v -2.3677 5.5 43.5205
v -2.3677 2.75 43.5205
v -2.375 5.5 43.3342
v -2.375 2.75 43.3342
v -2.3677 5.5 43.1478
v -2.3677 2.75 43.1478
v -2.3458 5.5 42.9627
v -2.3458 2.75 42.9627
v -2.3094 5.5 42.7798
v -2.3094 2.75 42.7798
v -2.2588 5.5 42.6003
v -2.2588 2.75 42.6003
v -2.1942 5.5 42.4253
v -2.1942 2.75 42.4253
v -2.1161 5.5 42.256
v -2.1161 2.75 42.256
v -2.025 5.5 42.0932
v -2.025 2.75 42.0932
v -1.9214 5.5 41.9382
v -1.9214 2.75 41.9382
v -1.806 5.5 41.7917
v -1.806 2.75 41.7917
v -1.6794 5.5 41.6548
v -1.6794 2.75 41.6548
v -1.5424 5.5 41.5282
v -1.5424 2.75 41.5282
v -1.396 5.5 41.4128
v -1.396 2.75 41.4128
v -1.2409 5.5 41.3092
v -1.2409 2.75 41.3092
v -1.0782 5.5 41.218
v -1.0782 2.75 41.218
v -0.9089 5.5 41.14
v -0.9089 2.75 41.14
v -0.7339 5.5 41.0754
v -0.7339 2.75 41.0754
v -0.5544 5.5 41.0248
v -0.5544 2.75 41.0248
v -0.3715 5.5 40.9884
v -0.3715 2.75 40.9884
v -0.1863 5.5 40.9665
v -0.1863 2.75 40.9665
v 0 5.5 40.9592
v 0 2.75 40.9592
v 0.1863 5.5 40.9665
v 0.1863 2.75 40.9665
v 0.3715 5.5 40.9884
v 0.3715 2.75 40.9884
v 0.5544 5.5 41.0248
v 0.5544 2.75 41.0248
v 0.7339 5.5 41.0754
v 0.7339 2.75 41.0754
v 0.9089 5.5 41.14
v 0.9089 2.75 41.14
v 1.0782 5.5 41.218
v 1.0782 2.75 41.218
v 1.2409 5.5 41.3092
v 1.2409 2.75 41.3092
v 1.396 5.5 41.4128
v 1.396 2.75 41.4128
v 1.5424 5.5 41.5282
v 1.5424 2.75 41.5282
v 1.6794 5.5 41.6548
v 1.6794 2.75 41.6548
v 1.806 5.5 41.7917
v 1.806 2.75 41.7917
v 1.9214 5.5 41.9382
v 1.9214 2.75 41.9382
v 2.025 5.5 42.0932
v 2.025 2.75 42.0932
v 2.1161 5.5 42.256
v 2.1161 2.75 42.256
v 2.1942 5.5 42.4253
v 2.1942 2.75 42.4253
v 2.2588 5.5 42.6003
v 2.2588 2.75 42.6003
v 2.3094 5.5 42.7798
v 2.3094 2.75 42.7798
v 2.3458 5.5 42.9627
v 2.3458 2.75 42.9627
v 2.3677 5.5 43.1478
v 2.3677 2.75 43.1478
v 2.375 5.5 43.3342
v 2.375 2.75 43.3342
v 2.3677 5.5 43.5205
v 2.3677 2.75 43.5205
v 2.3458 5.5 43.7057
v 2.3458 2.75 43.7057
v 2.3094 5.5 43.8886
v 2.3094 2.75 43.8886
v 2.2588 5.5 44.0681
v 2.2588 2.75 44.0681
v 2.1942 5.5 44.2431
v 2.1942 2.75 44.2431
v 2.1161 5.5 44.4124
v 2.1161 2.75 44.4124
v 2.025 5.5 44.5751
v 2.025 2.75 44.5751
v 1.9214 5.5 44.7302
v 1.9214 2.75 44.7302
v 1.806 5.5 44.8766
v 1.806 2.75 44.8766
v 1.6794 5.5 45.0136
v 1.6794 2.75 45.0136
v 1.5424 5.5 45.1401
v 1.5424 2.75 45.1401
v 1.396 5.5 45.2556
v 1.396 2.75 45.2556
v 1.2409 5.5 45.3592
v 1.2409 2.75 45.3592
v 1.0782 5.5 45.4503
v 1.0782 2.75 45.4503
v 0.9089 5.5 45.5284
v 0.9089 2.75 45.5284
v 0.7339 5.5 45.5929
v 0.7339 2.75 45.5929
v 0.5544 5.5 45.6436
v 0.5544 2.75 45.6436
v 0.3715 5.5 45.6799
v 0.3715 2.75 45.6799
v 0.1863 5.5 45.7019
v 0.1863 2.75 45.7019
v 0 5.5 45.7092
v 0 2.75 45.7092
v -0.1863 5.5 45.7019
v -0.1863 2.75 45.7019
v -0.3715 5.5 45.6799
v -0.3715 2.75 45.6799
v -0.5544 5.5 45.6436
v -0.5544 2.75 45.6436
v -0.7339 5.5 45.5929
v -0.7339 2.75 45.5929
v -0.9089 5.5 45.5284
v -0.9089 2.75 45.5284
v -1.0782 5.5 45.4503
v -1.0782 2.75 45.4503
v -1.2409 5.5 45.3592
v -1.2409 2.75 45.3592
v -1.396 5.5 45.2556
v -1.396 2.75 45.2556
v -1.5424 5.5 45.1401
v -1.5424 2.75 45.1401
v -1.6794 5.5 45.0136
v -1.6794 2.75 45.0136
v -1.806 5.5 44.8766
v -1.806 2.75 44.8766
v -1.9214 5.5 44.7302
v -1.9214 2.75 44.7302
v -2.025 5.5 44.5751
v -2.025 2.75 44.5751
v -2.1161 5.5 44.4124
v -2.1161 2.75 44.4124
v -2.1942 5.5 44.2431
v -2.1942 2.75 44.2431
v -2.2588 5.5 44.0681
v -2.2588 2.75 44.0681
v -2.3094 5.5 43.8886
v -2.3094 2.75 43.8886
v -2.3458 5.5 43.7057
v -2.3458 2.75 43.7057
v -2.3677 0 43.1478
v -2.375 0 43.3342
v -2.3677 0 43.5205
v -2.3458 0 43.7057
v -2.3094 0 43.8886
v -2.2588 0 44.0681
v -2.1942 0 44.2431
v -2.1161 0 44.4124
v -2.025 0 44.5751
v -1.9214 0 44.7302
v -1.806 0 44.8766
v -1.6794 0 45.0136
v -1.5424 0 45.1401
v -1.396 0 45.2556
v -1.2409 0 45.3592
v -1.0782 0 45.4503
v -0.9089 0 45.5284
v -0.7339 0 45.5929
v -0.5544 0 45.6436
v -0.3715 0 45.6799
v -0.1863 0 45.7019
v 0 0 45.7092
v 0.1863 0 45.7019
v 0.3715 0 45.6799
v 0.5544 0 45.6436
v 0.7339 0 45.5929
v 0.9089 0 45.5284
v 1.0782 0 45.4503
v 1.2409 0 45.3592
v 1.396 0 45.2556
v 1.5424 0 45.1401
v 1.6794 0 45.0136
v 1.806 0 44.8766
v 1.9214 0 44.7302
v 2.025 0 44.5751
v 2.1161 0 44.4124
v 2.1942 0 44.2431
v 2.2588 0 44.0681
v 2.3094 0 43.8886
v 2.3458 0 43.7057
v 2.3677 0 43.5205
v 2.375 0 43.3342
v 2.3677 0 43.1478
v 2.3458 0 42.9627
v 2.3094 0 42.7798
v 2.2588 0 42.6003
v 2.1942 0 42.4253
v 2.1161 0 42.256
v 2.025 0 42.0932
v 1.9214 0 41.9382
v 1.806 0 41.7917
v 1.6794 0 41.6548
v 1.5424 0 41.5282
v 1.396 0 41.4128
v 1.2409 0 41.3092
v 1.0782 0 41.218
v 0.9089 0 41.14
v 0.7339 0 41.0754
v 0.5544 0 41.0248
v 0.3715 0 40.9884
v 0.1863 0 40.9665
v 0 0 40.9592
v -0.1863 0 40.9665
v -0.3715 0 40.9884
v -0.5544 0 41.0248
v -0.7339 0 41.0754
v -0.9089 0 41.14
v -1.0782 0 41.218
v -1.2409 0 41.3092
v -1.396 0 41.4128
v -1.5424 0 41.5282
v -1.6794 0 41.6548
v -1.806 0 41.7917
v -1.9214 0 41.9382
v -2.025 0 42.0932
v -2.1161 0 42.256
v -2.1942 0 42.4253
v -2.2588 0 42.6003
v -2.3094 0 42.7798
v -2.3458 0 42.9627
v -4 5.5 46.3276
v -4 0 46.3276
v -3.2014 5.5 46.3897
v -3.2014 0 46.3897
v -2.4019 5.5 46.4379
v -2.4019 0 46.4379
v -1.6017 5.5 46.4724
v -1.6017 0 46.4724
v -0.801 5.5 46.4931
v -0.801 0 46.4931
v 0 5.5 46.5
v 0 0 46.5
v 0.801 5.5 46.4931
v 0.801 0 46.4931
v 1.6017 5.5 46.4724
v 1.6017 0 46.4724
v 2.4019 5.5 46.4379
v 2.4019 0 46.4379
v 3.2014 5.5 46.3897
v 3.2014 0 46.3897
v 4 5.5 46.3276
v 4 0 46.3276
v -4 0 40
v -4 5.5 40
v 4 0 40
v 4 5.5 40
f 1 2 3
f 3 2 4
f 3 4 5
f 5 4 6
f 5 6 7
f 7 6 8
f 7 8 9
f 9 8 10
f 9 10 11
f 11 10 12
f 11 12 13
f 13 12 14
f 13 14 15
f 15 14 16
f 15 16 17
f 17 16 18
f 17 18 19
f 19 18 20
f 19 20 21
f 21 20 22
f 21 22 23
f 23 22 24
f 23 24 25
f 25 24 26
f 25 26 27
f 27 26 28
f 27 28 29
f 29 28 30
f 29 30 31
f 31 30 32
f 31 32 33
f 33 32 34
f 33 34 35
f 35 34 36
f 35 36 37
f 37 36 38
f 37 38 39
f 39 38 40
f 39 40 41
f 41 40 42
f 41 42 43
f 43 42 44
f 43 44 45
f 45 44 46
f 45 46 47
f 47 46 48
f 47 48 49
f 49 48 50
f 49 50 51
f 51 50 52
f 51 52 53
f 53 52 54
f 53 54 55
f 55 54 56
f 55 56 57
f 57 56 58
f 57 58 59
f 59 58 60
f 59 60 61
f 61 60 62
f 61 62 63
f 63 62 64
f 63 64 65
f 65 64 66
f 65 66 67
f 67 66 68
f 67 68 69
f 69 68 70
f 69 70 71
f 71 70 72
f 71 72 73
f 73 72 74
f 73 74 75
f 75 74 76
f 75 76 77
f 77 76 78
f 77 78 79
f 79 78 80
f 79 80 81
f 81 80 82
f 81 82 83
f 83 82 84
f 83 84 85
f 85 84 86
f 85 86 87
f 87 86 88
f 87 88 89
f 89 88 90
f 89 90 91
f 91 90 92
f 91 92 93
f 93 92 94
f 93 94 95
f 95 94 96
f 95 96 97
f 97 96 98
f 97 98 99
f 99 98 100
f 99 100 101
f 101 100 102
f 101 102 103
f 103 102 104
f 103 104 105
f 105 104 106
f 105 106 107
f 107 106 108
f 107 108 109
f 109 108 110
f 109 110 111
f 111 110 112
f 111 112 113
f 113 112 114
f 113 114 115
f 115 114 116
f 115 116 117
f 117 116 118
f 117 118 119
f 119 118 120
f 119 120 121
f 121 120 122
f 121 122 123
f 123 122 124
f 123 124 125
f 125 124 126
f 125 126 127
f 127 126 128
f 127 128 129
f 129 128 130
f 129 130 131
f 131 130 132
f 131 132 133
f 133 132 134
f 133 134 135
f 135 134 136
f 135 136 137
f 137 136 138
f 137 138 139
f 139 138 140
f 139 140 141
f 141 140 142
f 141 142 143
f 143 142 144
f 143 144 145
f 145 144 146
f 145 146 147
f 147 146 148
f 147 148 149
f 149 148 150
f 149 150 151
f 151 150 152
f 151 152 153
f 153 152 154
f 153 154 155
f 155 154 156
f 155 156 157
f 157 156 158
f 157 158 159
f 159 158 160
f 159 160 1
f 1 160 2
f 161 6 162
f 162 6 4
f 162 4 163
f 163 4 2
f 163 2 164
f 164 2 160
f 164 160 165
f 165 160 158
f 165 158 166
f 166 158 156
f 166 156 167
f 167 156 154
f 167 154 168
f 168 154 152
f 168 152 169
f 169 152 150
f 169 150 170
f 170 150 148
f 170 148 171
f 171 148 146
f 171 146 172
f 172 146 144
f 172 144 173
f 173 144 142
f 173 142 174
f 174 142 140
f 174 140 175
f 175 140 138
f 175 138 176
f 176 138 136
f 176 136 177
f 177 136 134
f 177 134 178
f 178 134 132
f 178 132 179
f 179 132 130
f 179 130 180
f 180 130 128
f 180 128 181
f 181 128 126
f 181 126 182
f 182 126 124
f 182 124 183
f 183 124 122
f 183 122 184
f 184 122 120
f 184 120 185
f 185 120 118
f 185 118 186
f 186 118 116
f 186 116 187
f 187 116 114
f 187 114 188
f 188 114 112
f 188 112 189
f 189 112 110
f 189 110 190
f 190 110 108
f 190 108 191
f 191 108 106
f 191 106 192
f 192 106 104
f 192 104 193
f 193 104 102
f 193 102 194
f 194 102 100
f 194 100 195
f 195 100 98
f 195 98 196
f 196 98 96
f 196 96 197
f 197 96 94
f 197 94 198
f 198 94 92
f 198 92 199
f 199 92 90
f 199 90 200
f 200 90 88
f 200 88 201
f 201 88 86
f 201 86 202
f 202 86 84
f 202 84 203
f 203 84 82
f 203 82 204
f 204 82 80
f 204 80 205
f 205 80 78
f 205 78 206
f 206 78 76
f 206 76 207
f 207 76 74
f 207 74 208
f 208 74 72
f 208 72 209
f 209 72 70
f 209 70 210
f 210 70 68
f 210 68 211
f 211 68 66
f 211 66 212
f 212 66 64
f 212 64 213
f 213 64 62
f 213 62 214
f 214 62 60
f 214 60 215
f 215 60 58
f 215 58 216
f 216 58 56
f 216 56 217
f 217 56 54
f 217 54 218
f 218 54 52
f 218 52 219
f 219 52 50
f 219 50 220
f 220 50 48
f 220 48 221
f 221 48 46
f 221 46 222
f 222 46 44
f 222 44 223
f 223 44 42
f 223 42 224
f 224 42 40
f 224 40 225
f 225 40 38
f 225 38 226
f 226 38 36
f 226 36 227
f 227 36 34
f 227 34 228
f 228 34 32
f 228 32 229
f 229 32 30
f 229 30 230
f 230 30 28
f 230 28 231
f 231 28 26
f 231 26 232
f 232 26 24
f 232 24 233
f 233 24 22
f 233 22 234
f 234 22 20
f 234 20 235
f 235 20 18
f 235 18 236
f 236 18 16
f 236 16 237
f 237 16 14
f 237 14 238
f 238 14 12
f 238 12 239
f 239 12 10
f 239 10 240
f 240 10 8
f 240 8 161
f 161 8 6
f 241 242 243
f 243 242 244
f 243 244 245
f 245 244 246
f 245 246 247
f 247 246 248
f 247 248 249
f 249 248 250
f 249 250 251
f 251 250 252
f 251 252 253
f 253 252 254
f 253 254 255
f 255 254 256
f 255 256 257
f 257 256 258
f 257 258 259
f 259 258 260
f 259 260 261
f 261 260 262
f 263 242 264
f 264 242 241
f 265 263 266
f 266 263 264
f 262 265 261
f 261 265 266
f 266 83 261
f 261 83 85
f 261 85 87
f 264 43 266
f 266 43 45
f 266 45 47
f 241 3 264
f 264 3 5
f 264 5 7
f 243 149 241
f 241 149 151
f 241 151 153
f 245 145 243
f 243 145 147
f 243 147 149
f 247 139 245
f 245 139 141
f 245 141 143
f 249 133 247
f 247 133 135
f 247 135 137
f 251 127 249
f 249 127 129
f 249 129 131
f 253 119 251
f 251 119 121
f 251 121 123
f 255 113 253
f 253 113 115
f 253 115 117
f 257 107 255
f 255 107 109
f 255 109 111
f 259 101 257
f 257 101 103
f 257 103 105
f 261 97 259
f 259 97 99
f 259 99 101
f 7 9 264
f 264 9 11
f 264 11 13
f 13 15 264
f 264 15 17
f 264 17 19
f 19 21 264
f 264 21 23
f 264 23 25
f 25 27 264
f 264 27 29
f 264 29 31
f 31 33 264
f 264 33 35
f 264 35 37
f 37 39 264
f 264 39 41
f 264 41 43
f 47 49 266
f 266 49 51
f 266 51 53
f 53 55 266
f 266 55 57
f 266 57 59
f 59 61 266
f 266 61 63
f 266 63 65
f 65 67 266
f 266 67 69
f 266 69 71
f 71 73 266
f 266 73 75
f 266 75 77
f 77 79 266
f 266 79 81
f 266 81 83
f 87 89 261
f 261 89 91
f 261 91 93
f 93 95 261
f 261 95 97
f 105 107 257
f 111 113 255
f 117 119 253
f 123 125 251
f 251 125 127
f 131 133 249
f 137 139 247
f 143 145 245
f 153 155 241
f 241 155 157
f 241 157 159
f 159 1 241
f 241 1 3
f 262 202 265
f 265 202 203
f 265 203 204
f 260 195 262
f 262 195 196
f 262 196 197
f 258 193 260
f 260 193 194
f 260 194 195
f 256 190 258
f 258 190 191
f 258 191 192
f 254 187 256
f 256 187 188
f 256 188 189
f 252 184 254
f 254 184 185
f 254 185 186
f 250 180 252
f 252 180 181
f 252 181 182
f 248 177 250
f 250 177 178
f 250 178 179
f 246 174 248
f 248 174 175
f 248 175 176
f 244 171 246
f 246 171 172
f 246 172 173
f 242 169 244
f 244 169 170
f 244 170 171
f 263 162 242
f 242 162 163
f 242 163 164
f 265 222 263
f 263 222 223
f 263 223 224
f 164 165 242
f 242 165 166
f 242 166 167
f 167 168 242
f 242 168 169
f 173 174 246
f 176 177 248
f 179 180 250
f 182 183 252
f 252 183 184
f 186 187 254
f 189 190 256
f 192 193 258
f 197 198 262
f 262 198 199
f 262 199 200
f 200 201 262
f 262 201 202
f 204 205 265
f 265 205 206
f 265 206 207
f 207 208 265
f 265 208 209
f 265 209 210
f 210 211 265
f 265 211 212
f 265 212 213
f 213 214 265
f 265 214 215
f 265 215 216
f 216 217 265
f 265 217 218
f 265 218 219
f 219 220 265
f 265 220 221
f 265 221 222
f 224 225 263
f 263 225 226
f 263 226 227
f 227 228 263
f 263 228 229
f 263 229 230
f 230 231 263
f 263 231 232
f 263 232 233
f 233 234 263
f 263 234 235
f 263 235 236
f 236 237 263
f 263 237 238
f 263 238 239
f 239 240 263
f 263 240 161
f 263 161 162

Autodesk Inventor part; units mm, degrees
ref_plane "YZ Plane" through (0, 0, 0) normal (1, 0, 0) x (0, 1, 0)
ref_plane "XZ Plane" through (0, 0, 0) normal (0, 1, 0) x (-1, 0, 0)
ref_plane "XY Plane" through (0, 0, 0) normal (0, 0, 1) x (1, 0, 0)
sketch "Sketch1" plane through (0, 0, 0) normal (0, 1, 0) x (-1, 0, 0)
  circle A0 centre (0, 0) radius 50
  circle A1 centre (0, 0) radius 46.5
  circle A2 centre (0, 43.3342) radius 2.375
  line L0 (17.4744, 40) -> (-15.3474, 40)
  line L1 (4, 40) -> (4, 46.3276)
  line L2 (-4, 40) -> (-4, 46.3276)
  line L3 (0, 50) -> (0, 0)
  dimension "d0" = 100
  dimension "d1" = 93
  dimension "d2" = 4.75
  dimension "d6" = 40
  dimension "d8" = 4
  dimension "d10" = 4
  dimension "d11" = 4
  dimension "d12" = 0
extrude "Extrusion1" add sketch "Sketch1" along normal blind 5.5 contours A1 L1 L0 L3 A2 | L3 A2 L0 L2 A1
properties part number "100MagnetHolder_3DPrint"
